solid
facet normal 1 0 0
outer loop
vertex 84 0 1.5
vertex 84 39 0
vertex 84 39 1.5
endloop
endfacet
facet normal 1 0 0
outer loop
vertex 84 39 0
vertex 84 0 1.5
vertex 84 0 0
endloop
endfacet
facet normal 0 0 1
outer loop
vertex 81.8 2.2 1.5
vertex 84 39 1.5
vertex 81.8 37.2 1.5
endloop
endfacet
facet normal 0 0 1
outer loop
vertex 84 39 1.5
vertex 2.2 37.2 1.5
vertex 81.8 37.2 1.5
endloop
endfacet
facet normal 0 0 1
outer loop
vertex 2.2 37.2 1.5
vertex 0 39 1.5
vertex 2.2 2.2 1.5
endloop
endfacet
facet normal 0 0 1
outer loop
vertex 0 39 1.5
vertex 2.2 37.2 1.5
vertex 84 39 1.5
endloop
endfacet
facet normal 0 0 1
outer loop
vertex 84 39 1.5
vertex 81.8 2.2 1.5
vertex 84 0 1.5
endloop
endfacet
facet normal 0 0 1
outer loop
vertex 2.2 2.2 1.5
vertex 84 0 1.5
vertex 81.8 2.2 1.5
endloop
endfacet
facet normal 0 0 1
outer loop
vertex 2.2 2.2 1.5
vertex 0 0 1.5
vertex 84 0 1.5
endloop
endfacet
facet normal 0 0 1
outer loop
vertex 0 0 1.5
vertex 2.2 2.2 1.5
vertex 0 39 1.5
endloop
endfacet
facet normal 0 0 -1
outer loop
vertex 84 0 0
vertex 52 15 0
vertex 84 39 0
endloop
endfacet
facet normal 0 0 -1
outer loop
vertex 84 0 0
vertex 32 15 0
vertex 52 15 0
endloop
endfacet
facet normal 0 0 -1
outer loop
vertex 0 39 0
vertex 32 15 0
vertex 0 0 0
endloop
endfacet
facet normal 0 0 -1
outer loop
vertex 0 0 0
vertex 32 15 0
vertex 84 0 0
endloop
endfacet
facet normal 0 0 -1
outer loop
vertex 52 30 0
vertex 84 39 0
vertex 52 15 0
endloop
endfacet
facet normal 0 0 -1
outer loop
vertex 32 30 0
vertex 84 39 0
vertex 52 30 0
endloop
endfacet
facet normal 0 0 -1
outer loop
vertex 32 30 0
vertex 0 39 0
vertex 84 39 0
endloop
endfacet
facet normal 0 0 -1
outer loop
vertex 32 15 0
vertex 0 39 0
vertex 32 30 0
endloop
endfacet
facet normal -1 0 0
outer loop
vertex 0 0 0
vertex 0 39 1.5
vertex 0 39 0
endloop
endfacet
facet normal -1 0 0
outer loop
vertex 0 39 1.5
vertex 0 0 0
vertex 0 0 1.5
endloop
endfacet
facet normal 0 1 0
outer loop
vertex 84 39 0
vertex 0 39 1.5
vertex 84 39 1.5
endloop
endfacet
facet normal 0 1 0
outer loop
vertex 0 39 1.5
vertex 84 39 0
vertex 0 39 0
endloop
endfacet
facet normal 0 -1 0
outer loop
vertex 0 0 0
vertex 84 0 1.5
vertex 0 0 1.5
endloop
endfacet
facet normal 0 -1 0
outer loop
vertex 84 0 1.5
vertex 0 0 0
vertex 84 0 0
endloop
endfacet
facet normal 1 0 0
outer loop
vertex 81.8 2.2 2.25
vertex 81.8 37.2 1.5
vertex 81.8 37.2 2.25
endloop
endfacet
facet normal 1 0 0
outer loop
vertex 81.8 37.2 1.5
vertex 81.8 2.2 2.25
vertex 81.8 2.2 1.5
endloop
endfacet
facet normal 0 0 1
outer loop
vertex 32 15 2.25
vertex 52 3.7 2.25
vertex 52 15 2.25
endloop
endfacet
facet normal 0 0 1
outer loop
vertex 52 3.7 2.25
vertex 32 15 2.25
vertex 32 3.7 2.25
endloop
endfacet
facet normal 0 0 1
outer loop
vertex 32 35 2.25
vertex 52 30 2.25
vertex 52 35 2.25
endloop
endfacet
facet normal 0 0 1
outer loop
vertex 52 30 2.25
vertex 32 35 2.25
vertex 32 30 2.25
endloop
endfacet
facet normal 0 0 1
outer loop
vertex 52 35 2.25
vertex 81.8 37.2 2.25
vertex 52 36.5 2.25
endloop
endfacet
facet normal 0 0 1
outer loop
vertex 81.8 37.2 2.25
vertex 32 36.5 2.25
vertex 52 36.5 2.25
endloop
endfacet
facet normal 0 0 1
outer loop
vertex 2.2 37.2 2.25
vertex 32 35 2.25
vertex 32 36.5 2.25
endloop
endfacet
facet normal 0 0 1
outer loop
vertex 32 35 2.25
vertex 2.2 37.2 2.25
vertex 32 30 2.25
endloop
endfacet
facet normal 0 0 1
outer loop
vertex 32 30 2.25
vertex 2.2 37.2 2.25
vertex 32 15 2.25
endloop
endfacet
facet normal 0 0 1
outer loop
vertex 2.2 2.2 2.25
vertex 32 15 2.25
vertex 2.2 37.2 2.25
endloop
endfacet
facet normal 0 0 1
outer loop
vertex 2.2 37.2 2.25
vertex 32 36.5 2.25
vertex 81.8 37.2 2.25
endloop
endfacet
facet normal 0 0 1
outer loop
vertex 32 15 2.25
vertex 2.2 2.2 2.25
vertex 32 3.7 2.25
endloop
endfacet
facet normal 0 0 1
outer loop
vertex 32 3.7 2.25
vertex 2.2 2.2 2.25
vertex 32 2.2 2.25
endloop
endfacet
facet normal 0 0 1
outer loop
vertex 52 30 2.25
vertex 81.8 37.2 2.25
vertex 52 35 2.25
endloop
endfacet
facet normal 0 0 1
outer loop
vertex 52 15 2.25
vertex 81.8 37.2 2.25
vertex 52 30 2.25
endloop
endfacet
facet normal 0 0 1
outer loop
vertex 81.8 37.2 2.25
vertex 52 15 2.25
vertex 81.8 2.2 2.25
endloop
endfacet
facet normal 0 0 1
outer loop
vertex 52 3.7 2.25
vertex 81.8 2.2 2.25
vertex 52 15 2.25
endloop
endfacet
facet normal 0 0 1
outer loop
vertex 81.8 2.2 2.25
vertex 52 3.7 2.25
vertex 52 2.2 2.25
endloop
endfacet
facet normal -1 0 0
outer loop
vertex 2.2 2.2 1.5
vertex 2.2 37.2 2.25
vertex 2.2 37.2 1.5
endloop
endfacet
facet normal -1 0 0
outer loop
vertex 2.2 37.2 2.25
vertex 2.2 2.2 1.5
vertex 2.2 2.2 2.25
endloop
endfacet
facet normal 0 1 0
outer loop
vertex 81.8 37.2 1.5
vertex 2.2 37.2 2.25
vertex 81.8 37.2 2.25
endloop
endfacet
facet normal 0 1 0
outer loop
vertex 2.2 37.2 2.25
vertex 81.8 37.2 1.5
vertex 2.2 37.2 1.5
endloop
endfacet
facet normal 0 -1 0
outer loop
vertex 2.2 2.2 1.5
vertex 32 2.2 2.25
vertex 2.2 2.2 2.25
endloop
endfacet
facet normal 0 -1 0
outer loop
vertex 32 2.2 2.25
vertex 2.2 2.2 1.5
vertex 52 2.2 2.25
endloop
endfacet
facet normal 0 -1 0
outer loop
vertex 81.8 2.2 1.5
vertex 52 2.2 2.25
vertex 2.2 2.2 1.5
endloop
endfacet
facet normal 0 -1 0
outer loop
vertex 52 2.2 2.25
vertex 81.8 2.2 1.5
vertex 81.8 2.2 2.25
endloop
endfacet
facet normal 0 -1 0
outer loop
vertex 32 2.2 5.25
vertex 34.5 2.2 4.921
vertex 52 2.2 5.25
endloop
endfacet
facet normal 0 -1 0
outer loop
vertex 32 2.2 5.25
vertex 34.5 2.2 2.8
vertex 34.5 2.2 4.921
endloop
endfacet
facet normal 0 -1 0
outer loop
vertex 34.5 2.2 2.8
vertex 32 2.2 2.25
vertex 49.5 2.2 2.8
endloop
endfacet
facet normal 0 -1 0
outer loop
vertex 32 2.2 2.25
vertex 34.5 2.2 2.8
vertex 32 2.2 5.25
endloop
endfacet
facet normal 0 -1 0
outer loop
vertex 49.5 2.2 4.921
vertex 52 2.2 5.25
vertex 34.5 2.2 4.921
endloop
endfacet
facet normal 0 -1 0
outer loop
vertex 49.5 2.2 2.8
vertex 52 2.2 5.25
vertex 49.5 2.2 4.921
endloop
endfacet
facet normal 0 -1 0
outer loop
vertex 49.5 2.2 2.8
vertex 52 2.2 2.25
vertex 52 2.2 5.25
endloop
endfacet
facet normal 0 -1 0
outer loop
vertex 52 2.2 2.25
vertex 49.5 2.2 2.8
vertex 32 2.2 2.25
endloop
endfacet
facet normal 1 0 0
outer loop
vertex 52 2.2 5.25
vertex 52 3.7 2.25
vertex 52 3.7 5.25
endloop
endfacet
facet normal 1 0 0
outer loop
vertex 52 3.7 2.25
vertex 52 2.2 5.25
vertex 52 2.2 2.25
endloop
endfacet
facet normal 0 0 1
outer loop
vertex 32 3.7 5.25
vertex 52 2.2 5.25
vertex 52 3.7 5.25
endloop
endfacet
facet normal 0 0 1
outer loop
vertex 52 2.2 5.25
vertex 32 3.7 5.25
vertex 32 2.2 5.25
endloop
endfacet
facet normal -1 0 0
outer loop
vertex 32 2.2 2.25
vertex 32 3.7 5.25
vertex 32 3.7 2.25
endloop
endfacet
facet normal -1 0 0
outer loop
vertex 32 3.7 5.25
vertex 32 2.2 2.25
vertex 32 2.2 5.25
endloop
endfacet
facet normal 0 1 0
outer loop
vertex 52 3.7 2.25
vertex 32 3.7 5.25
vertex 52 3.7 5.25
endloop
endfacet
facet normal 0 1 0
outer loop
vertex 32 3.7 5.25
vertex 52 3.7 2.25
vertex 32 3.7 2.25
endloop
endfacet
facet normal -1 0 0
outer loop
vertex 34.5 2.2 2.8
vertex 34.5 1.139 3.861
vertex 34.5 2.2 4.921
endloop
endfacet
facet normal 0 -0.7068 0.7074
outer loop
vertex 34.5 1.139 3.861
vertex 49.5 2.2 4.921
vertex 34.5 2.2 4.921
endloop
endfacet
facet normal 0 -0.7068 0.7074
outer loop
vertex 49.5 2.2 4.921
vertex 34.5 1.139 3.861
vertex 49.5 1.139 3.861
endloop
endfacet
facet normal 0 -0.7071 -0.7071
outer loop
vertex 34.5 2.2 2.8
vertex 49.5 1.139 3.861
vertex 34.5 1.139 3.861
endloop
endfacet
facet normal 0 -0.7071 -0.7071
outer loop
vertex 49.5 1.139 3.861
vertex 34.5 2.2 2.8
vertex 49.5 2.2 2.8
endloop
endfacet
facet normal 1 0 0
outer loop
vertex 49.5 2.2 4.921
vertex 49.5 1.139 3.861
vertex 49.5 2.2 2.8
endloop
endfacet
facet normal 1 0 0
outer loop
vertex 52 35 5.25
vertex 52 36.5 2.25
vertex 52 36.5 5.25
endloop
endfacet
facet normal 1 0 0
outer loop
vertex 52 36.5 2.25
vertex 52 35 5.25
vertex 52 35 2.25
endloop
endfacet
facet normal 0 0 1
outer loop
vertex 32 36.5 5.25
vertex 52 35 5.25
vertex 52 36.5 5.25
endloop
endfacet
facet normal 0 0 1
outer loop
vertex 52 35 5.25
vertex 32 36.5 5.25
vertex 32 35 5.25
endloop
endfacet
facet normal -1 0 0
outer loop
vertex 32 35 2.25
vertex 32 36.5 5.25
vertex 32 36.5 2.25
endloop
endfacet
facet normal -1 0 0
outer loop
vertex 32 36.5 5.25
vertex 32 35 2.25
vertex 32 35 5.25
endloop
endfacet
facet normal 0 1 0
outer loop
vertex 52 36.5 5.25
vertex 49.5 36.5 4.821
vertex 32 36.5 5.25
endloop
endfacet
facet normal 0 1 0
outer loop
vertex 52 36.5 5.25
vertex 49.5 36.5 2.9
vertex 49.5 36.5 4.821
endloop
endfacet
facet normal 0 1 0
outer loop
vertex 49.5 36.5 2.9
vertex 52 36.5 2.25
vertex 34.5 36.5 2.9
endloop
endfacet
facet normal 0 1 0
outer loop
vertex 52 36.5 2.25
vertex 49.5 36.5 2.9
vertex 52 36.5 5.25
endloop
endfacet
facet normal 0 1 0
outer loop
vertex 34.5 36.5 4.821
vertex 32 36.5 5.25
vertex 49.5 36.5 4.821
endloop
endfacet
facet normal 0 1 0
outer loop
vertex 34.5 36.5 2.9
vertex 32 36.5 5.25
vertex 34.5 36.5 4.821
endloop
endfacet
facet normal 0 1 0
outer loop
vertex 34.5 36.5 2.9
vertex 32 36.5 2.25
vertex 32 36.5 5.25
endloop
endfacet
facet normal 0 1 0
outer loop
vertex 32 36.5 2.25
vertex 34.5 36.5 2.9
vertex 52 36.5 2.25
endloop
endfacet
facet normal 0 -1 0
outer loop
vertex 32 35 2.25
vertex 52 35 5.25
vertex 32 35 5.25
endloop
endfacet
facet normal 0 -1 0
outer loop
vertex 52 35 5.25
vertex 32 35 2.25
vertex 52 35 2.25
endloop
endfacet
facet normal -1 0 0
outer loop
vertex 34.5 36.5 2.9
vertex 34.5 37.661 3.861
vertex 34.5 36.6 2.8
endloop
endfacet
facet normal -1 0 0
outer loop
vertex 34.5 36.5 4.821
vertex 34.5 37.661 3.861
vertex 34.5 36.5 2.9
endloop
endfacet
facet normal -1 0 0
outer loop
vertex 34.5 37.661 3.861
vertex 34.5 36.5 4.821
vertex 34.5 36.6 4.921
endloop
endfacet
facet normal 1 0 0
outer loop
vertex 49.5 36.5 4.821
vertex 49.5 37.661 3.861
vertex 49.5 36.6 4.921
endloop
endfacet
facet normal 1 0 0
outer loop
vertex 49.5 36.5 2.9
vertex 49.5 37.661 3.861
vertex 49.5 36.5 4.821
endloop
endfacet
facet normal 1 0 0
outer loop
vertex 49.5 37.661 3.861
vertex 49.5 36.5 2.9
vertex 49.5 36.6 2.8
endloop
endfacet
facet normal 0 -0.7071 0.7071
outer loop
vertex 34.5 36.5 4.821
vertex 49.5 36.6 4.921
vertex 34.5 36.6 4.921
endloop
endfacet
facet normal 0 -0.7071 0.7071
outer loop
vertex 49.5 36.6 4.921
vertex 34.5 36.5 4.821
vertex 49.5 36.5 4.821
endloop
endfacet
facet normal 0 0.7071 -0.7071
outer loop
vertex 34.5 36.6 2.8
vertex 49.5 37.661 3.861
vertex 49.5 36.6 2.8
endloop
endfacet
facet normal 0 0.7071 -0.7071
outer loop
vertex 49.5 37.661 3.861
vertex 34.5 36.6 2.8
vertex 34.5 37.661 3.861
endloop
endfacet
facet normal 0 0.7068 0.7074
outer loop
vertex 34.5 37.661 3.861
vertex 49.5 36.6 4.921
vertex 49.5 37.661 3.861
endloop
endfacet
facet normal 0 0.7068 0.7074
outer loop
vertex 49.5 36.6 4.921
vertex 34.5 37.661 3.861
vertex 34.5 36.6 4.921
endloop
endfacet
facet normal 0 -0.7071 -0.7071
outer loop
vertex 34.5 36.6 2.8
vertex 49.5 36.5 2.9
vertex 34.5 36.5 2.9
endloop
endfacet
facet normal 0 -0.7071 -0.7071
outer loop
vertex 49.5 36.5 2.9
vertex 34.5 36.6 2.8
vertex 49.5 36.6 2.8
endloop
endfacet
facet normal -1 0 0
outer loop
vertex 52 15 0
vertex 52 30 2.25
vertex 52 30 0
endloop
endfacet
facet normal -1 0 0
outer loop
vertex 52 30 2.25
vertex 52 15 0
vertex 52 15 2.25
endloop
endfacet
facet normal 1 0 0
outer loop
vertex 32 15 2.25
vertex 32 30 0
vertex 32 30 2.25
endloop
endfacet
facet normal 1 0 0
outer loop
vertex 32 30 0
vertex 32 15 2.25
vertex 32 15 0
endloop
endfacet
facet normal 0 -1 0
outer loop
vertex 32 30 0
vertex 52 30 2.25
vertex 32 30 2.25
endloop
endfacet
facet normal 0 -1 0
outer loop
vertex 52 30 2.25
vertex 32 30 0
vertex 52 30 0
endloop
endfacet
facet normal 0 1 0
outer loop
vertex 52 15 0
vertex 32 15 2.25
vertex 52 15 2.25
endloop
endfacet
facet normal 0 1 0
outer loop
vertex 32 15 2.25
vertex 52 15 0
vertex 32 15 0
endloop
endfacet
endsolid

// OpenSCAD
sizeX = 84;  
sizeY = 39;  

height = 1.5;

border = 2; // some space for fitting
border2 = 2 * border;
offset = .2;
offset2 = 2 * offset;


snaphandlewidth = 20;
snaphandledepth = 1.5;
snaphandleheight = 3;

snapsize = 1.5;
snapwidth = snaphandlewidth - 5;
snapheight = snaphandleheight;

holewidth = 20;
holeheight = 15;
holeypos = 15;

cutoutholexstart = border2;
cutoutholex = sizeX - border2 * 2;
cutoutholeystart = border + offset + snaphandledepth;
cutoutholey = sizeY - border2 - offset2 - snaphandledepth * 2;


difference() {
    union() {
        cube(size=[sizeX, sizeY, height], center = false);
        

           translate([border + offset, border + offset, height])
            cube(size=[sizeX - (border2 + offset2), sizeY - border2, height / 2], 
                center = false);
        
        // snap1
        translate([(sizeX - snaphandlewidth) / 2, border + offset, 1.5 * height]) 
           cube(size=[snaphandlewidth, snaphandledepth, snaphandleheight], center = false);
        
       translate([(sizeX - snapwidth) / 2, border + offset, snapheight - offset]) 
         rotate([45, 0, 0])
          cube(size=[snapwidth, snapsize, snapsize], center = false);
 
         // snap2
        translate([(sizeX - snaphandlewidth) / 2, sizeY - border2, 1.5 * height]) 
           cube(size=[snaphandlewidth, snaphandledepth, snaphandleheight], center = false);
        
       translate([(sizeX - snapwidth) / 2, sizeY - border - offset2, snapheight - offset]) 
         rotate([45, 0, 0])
          cube(size=[snapwidth, snapsize, snapsize], center = false);
       
    }
    {
        translate([(sizeX - holewidth) / 2, holeypos, -1])
            cube(size=[holewidth, holeheight, height + 5], center = false); 
        
       // translate([cutoutholexstart, cutoutholeystart, height - offset])
        //    cube(size=[cutoutholex, cutoutholey, height + 5], center = false); 
  
    }
   
}
